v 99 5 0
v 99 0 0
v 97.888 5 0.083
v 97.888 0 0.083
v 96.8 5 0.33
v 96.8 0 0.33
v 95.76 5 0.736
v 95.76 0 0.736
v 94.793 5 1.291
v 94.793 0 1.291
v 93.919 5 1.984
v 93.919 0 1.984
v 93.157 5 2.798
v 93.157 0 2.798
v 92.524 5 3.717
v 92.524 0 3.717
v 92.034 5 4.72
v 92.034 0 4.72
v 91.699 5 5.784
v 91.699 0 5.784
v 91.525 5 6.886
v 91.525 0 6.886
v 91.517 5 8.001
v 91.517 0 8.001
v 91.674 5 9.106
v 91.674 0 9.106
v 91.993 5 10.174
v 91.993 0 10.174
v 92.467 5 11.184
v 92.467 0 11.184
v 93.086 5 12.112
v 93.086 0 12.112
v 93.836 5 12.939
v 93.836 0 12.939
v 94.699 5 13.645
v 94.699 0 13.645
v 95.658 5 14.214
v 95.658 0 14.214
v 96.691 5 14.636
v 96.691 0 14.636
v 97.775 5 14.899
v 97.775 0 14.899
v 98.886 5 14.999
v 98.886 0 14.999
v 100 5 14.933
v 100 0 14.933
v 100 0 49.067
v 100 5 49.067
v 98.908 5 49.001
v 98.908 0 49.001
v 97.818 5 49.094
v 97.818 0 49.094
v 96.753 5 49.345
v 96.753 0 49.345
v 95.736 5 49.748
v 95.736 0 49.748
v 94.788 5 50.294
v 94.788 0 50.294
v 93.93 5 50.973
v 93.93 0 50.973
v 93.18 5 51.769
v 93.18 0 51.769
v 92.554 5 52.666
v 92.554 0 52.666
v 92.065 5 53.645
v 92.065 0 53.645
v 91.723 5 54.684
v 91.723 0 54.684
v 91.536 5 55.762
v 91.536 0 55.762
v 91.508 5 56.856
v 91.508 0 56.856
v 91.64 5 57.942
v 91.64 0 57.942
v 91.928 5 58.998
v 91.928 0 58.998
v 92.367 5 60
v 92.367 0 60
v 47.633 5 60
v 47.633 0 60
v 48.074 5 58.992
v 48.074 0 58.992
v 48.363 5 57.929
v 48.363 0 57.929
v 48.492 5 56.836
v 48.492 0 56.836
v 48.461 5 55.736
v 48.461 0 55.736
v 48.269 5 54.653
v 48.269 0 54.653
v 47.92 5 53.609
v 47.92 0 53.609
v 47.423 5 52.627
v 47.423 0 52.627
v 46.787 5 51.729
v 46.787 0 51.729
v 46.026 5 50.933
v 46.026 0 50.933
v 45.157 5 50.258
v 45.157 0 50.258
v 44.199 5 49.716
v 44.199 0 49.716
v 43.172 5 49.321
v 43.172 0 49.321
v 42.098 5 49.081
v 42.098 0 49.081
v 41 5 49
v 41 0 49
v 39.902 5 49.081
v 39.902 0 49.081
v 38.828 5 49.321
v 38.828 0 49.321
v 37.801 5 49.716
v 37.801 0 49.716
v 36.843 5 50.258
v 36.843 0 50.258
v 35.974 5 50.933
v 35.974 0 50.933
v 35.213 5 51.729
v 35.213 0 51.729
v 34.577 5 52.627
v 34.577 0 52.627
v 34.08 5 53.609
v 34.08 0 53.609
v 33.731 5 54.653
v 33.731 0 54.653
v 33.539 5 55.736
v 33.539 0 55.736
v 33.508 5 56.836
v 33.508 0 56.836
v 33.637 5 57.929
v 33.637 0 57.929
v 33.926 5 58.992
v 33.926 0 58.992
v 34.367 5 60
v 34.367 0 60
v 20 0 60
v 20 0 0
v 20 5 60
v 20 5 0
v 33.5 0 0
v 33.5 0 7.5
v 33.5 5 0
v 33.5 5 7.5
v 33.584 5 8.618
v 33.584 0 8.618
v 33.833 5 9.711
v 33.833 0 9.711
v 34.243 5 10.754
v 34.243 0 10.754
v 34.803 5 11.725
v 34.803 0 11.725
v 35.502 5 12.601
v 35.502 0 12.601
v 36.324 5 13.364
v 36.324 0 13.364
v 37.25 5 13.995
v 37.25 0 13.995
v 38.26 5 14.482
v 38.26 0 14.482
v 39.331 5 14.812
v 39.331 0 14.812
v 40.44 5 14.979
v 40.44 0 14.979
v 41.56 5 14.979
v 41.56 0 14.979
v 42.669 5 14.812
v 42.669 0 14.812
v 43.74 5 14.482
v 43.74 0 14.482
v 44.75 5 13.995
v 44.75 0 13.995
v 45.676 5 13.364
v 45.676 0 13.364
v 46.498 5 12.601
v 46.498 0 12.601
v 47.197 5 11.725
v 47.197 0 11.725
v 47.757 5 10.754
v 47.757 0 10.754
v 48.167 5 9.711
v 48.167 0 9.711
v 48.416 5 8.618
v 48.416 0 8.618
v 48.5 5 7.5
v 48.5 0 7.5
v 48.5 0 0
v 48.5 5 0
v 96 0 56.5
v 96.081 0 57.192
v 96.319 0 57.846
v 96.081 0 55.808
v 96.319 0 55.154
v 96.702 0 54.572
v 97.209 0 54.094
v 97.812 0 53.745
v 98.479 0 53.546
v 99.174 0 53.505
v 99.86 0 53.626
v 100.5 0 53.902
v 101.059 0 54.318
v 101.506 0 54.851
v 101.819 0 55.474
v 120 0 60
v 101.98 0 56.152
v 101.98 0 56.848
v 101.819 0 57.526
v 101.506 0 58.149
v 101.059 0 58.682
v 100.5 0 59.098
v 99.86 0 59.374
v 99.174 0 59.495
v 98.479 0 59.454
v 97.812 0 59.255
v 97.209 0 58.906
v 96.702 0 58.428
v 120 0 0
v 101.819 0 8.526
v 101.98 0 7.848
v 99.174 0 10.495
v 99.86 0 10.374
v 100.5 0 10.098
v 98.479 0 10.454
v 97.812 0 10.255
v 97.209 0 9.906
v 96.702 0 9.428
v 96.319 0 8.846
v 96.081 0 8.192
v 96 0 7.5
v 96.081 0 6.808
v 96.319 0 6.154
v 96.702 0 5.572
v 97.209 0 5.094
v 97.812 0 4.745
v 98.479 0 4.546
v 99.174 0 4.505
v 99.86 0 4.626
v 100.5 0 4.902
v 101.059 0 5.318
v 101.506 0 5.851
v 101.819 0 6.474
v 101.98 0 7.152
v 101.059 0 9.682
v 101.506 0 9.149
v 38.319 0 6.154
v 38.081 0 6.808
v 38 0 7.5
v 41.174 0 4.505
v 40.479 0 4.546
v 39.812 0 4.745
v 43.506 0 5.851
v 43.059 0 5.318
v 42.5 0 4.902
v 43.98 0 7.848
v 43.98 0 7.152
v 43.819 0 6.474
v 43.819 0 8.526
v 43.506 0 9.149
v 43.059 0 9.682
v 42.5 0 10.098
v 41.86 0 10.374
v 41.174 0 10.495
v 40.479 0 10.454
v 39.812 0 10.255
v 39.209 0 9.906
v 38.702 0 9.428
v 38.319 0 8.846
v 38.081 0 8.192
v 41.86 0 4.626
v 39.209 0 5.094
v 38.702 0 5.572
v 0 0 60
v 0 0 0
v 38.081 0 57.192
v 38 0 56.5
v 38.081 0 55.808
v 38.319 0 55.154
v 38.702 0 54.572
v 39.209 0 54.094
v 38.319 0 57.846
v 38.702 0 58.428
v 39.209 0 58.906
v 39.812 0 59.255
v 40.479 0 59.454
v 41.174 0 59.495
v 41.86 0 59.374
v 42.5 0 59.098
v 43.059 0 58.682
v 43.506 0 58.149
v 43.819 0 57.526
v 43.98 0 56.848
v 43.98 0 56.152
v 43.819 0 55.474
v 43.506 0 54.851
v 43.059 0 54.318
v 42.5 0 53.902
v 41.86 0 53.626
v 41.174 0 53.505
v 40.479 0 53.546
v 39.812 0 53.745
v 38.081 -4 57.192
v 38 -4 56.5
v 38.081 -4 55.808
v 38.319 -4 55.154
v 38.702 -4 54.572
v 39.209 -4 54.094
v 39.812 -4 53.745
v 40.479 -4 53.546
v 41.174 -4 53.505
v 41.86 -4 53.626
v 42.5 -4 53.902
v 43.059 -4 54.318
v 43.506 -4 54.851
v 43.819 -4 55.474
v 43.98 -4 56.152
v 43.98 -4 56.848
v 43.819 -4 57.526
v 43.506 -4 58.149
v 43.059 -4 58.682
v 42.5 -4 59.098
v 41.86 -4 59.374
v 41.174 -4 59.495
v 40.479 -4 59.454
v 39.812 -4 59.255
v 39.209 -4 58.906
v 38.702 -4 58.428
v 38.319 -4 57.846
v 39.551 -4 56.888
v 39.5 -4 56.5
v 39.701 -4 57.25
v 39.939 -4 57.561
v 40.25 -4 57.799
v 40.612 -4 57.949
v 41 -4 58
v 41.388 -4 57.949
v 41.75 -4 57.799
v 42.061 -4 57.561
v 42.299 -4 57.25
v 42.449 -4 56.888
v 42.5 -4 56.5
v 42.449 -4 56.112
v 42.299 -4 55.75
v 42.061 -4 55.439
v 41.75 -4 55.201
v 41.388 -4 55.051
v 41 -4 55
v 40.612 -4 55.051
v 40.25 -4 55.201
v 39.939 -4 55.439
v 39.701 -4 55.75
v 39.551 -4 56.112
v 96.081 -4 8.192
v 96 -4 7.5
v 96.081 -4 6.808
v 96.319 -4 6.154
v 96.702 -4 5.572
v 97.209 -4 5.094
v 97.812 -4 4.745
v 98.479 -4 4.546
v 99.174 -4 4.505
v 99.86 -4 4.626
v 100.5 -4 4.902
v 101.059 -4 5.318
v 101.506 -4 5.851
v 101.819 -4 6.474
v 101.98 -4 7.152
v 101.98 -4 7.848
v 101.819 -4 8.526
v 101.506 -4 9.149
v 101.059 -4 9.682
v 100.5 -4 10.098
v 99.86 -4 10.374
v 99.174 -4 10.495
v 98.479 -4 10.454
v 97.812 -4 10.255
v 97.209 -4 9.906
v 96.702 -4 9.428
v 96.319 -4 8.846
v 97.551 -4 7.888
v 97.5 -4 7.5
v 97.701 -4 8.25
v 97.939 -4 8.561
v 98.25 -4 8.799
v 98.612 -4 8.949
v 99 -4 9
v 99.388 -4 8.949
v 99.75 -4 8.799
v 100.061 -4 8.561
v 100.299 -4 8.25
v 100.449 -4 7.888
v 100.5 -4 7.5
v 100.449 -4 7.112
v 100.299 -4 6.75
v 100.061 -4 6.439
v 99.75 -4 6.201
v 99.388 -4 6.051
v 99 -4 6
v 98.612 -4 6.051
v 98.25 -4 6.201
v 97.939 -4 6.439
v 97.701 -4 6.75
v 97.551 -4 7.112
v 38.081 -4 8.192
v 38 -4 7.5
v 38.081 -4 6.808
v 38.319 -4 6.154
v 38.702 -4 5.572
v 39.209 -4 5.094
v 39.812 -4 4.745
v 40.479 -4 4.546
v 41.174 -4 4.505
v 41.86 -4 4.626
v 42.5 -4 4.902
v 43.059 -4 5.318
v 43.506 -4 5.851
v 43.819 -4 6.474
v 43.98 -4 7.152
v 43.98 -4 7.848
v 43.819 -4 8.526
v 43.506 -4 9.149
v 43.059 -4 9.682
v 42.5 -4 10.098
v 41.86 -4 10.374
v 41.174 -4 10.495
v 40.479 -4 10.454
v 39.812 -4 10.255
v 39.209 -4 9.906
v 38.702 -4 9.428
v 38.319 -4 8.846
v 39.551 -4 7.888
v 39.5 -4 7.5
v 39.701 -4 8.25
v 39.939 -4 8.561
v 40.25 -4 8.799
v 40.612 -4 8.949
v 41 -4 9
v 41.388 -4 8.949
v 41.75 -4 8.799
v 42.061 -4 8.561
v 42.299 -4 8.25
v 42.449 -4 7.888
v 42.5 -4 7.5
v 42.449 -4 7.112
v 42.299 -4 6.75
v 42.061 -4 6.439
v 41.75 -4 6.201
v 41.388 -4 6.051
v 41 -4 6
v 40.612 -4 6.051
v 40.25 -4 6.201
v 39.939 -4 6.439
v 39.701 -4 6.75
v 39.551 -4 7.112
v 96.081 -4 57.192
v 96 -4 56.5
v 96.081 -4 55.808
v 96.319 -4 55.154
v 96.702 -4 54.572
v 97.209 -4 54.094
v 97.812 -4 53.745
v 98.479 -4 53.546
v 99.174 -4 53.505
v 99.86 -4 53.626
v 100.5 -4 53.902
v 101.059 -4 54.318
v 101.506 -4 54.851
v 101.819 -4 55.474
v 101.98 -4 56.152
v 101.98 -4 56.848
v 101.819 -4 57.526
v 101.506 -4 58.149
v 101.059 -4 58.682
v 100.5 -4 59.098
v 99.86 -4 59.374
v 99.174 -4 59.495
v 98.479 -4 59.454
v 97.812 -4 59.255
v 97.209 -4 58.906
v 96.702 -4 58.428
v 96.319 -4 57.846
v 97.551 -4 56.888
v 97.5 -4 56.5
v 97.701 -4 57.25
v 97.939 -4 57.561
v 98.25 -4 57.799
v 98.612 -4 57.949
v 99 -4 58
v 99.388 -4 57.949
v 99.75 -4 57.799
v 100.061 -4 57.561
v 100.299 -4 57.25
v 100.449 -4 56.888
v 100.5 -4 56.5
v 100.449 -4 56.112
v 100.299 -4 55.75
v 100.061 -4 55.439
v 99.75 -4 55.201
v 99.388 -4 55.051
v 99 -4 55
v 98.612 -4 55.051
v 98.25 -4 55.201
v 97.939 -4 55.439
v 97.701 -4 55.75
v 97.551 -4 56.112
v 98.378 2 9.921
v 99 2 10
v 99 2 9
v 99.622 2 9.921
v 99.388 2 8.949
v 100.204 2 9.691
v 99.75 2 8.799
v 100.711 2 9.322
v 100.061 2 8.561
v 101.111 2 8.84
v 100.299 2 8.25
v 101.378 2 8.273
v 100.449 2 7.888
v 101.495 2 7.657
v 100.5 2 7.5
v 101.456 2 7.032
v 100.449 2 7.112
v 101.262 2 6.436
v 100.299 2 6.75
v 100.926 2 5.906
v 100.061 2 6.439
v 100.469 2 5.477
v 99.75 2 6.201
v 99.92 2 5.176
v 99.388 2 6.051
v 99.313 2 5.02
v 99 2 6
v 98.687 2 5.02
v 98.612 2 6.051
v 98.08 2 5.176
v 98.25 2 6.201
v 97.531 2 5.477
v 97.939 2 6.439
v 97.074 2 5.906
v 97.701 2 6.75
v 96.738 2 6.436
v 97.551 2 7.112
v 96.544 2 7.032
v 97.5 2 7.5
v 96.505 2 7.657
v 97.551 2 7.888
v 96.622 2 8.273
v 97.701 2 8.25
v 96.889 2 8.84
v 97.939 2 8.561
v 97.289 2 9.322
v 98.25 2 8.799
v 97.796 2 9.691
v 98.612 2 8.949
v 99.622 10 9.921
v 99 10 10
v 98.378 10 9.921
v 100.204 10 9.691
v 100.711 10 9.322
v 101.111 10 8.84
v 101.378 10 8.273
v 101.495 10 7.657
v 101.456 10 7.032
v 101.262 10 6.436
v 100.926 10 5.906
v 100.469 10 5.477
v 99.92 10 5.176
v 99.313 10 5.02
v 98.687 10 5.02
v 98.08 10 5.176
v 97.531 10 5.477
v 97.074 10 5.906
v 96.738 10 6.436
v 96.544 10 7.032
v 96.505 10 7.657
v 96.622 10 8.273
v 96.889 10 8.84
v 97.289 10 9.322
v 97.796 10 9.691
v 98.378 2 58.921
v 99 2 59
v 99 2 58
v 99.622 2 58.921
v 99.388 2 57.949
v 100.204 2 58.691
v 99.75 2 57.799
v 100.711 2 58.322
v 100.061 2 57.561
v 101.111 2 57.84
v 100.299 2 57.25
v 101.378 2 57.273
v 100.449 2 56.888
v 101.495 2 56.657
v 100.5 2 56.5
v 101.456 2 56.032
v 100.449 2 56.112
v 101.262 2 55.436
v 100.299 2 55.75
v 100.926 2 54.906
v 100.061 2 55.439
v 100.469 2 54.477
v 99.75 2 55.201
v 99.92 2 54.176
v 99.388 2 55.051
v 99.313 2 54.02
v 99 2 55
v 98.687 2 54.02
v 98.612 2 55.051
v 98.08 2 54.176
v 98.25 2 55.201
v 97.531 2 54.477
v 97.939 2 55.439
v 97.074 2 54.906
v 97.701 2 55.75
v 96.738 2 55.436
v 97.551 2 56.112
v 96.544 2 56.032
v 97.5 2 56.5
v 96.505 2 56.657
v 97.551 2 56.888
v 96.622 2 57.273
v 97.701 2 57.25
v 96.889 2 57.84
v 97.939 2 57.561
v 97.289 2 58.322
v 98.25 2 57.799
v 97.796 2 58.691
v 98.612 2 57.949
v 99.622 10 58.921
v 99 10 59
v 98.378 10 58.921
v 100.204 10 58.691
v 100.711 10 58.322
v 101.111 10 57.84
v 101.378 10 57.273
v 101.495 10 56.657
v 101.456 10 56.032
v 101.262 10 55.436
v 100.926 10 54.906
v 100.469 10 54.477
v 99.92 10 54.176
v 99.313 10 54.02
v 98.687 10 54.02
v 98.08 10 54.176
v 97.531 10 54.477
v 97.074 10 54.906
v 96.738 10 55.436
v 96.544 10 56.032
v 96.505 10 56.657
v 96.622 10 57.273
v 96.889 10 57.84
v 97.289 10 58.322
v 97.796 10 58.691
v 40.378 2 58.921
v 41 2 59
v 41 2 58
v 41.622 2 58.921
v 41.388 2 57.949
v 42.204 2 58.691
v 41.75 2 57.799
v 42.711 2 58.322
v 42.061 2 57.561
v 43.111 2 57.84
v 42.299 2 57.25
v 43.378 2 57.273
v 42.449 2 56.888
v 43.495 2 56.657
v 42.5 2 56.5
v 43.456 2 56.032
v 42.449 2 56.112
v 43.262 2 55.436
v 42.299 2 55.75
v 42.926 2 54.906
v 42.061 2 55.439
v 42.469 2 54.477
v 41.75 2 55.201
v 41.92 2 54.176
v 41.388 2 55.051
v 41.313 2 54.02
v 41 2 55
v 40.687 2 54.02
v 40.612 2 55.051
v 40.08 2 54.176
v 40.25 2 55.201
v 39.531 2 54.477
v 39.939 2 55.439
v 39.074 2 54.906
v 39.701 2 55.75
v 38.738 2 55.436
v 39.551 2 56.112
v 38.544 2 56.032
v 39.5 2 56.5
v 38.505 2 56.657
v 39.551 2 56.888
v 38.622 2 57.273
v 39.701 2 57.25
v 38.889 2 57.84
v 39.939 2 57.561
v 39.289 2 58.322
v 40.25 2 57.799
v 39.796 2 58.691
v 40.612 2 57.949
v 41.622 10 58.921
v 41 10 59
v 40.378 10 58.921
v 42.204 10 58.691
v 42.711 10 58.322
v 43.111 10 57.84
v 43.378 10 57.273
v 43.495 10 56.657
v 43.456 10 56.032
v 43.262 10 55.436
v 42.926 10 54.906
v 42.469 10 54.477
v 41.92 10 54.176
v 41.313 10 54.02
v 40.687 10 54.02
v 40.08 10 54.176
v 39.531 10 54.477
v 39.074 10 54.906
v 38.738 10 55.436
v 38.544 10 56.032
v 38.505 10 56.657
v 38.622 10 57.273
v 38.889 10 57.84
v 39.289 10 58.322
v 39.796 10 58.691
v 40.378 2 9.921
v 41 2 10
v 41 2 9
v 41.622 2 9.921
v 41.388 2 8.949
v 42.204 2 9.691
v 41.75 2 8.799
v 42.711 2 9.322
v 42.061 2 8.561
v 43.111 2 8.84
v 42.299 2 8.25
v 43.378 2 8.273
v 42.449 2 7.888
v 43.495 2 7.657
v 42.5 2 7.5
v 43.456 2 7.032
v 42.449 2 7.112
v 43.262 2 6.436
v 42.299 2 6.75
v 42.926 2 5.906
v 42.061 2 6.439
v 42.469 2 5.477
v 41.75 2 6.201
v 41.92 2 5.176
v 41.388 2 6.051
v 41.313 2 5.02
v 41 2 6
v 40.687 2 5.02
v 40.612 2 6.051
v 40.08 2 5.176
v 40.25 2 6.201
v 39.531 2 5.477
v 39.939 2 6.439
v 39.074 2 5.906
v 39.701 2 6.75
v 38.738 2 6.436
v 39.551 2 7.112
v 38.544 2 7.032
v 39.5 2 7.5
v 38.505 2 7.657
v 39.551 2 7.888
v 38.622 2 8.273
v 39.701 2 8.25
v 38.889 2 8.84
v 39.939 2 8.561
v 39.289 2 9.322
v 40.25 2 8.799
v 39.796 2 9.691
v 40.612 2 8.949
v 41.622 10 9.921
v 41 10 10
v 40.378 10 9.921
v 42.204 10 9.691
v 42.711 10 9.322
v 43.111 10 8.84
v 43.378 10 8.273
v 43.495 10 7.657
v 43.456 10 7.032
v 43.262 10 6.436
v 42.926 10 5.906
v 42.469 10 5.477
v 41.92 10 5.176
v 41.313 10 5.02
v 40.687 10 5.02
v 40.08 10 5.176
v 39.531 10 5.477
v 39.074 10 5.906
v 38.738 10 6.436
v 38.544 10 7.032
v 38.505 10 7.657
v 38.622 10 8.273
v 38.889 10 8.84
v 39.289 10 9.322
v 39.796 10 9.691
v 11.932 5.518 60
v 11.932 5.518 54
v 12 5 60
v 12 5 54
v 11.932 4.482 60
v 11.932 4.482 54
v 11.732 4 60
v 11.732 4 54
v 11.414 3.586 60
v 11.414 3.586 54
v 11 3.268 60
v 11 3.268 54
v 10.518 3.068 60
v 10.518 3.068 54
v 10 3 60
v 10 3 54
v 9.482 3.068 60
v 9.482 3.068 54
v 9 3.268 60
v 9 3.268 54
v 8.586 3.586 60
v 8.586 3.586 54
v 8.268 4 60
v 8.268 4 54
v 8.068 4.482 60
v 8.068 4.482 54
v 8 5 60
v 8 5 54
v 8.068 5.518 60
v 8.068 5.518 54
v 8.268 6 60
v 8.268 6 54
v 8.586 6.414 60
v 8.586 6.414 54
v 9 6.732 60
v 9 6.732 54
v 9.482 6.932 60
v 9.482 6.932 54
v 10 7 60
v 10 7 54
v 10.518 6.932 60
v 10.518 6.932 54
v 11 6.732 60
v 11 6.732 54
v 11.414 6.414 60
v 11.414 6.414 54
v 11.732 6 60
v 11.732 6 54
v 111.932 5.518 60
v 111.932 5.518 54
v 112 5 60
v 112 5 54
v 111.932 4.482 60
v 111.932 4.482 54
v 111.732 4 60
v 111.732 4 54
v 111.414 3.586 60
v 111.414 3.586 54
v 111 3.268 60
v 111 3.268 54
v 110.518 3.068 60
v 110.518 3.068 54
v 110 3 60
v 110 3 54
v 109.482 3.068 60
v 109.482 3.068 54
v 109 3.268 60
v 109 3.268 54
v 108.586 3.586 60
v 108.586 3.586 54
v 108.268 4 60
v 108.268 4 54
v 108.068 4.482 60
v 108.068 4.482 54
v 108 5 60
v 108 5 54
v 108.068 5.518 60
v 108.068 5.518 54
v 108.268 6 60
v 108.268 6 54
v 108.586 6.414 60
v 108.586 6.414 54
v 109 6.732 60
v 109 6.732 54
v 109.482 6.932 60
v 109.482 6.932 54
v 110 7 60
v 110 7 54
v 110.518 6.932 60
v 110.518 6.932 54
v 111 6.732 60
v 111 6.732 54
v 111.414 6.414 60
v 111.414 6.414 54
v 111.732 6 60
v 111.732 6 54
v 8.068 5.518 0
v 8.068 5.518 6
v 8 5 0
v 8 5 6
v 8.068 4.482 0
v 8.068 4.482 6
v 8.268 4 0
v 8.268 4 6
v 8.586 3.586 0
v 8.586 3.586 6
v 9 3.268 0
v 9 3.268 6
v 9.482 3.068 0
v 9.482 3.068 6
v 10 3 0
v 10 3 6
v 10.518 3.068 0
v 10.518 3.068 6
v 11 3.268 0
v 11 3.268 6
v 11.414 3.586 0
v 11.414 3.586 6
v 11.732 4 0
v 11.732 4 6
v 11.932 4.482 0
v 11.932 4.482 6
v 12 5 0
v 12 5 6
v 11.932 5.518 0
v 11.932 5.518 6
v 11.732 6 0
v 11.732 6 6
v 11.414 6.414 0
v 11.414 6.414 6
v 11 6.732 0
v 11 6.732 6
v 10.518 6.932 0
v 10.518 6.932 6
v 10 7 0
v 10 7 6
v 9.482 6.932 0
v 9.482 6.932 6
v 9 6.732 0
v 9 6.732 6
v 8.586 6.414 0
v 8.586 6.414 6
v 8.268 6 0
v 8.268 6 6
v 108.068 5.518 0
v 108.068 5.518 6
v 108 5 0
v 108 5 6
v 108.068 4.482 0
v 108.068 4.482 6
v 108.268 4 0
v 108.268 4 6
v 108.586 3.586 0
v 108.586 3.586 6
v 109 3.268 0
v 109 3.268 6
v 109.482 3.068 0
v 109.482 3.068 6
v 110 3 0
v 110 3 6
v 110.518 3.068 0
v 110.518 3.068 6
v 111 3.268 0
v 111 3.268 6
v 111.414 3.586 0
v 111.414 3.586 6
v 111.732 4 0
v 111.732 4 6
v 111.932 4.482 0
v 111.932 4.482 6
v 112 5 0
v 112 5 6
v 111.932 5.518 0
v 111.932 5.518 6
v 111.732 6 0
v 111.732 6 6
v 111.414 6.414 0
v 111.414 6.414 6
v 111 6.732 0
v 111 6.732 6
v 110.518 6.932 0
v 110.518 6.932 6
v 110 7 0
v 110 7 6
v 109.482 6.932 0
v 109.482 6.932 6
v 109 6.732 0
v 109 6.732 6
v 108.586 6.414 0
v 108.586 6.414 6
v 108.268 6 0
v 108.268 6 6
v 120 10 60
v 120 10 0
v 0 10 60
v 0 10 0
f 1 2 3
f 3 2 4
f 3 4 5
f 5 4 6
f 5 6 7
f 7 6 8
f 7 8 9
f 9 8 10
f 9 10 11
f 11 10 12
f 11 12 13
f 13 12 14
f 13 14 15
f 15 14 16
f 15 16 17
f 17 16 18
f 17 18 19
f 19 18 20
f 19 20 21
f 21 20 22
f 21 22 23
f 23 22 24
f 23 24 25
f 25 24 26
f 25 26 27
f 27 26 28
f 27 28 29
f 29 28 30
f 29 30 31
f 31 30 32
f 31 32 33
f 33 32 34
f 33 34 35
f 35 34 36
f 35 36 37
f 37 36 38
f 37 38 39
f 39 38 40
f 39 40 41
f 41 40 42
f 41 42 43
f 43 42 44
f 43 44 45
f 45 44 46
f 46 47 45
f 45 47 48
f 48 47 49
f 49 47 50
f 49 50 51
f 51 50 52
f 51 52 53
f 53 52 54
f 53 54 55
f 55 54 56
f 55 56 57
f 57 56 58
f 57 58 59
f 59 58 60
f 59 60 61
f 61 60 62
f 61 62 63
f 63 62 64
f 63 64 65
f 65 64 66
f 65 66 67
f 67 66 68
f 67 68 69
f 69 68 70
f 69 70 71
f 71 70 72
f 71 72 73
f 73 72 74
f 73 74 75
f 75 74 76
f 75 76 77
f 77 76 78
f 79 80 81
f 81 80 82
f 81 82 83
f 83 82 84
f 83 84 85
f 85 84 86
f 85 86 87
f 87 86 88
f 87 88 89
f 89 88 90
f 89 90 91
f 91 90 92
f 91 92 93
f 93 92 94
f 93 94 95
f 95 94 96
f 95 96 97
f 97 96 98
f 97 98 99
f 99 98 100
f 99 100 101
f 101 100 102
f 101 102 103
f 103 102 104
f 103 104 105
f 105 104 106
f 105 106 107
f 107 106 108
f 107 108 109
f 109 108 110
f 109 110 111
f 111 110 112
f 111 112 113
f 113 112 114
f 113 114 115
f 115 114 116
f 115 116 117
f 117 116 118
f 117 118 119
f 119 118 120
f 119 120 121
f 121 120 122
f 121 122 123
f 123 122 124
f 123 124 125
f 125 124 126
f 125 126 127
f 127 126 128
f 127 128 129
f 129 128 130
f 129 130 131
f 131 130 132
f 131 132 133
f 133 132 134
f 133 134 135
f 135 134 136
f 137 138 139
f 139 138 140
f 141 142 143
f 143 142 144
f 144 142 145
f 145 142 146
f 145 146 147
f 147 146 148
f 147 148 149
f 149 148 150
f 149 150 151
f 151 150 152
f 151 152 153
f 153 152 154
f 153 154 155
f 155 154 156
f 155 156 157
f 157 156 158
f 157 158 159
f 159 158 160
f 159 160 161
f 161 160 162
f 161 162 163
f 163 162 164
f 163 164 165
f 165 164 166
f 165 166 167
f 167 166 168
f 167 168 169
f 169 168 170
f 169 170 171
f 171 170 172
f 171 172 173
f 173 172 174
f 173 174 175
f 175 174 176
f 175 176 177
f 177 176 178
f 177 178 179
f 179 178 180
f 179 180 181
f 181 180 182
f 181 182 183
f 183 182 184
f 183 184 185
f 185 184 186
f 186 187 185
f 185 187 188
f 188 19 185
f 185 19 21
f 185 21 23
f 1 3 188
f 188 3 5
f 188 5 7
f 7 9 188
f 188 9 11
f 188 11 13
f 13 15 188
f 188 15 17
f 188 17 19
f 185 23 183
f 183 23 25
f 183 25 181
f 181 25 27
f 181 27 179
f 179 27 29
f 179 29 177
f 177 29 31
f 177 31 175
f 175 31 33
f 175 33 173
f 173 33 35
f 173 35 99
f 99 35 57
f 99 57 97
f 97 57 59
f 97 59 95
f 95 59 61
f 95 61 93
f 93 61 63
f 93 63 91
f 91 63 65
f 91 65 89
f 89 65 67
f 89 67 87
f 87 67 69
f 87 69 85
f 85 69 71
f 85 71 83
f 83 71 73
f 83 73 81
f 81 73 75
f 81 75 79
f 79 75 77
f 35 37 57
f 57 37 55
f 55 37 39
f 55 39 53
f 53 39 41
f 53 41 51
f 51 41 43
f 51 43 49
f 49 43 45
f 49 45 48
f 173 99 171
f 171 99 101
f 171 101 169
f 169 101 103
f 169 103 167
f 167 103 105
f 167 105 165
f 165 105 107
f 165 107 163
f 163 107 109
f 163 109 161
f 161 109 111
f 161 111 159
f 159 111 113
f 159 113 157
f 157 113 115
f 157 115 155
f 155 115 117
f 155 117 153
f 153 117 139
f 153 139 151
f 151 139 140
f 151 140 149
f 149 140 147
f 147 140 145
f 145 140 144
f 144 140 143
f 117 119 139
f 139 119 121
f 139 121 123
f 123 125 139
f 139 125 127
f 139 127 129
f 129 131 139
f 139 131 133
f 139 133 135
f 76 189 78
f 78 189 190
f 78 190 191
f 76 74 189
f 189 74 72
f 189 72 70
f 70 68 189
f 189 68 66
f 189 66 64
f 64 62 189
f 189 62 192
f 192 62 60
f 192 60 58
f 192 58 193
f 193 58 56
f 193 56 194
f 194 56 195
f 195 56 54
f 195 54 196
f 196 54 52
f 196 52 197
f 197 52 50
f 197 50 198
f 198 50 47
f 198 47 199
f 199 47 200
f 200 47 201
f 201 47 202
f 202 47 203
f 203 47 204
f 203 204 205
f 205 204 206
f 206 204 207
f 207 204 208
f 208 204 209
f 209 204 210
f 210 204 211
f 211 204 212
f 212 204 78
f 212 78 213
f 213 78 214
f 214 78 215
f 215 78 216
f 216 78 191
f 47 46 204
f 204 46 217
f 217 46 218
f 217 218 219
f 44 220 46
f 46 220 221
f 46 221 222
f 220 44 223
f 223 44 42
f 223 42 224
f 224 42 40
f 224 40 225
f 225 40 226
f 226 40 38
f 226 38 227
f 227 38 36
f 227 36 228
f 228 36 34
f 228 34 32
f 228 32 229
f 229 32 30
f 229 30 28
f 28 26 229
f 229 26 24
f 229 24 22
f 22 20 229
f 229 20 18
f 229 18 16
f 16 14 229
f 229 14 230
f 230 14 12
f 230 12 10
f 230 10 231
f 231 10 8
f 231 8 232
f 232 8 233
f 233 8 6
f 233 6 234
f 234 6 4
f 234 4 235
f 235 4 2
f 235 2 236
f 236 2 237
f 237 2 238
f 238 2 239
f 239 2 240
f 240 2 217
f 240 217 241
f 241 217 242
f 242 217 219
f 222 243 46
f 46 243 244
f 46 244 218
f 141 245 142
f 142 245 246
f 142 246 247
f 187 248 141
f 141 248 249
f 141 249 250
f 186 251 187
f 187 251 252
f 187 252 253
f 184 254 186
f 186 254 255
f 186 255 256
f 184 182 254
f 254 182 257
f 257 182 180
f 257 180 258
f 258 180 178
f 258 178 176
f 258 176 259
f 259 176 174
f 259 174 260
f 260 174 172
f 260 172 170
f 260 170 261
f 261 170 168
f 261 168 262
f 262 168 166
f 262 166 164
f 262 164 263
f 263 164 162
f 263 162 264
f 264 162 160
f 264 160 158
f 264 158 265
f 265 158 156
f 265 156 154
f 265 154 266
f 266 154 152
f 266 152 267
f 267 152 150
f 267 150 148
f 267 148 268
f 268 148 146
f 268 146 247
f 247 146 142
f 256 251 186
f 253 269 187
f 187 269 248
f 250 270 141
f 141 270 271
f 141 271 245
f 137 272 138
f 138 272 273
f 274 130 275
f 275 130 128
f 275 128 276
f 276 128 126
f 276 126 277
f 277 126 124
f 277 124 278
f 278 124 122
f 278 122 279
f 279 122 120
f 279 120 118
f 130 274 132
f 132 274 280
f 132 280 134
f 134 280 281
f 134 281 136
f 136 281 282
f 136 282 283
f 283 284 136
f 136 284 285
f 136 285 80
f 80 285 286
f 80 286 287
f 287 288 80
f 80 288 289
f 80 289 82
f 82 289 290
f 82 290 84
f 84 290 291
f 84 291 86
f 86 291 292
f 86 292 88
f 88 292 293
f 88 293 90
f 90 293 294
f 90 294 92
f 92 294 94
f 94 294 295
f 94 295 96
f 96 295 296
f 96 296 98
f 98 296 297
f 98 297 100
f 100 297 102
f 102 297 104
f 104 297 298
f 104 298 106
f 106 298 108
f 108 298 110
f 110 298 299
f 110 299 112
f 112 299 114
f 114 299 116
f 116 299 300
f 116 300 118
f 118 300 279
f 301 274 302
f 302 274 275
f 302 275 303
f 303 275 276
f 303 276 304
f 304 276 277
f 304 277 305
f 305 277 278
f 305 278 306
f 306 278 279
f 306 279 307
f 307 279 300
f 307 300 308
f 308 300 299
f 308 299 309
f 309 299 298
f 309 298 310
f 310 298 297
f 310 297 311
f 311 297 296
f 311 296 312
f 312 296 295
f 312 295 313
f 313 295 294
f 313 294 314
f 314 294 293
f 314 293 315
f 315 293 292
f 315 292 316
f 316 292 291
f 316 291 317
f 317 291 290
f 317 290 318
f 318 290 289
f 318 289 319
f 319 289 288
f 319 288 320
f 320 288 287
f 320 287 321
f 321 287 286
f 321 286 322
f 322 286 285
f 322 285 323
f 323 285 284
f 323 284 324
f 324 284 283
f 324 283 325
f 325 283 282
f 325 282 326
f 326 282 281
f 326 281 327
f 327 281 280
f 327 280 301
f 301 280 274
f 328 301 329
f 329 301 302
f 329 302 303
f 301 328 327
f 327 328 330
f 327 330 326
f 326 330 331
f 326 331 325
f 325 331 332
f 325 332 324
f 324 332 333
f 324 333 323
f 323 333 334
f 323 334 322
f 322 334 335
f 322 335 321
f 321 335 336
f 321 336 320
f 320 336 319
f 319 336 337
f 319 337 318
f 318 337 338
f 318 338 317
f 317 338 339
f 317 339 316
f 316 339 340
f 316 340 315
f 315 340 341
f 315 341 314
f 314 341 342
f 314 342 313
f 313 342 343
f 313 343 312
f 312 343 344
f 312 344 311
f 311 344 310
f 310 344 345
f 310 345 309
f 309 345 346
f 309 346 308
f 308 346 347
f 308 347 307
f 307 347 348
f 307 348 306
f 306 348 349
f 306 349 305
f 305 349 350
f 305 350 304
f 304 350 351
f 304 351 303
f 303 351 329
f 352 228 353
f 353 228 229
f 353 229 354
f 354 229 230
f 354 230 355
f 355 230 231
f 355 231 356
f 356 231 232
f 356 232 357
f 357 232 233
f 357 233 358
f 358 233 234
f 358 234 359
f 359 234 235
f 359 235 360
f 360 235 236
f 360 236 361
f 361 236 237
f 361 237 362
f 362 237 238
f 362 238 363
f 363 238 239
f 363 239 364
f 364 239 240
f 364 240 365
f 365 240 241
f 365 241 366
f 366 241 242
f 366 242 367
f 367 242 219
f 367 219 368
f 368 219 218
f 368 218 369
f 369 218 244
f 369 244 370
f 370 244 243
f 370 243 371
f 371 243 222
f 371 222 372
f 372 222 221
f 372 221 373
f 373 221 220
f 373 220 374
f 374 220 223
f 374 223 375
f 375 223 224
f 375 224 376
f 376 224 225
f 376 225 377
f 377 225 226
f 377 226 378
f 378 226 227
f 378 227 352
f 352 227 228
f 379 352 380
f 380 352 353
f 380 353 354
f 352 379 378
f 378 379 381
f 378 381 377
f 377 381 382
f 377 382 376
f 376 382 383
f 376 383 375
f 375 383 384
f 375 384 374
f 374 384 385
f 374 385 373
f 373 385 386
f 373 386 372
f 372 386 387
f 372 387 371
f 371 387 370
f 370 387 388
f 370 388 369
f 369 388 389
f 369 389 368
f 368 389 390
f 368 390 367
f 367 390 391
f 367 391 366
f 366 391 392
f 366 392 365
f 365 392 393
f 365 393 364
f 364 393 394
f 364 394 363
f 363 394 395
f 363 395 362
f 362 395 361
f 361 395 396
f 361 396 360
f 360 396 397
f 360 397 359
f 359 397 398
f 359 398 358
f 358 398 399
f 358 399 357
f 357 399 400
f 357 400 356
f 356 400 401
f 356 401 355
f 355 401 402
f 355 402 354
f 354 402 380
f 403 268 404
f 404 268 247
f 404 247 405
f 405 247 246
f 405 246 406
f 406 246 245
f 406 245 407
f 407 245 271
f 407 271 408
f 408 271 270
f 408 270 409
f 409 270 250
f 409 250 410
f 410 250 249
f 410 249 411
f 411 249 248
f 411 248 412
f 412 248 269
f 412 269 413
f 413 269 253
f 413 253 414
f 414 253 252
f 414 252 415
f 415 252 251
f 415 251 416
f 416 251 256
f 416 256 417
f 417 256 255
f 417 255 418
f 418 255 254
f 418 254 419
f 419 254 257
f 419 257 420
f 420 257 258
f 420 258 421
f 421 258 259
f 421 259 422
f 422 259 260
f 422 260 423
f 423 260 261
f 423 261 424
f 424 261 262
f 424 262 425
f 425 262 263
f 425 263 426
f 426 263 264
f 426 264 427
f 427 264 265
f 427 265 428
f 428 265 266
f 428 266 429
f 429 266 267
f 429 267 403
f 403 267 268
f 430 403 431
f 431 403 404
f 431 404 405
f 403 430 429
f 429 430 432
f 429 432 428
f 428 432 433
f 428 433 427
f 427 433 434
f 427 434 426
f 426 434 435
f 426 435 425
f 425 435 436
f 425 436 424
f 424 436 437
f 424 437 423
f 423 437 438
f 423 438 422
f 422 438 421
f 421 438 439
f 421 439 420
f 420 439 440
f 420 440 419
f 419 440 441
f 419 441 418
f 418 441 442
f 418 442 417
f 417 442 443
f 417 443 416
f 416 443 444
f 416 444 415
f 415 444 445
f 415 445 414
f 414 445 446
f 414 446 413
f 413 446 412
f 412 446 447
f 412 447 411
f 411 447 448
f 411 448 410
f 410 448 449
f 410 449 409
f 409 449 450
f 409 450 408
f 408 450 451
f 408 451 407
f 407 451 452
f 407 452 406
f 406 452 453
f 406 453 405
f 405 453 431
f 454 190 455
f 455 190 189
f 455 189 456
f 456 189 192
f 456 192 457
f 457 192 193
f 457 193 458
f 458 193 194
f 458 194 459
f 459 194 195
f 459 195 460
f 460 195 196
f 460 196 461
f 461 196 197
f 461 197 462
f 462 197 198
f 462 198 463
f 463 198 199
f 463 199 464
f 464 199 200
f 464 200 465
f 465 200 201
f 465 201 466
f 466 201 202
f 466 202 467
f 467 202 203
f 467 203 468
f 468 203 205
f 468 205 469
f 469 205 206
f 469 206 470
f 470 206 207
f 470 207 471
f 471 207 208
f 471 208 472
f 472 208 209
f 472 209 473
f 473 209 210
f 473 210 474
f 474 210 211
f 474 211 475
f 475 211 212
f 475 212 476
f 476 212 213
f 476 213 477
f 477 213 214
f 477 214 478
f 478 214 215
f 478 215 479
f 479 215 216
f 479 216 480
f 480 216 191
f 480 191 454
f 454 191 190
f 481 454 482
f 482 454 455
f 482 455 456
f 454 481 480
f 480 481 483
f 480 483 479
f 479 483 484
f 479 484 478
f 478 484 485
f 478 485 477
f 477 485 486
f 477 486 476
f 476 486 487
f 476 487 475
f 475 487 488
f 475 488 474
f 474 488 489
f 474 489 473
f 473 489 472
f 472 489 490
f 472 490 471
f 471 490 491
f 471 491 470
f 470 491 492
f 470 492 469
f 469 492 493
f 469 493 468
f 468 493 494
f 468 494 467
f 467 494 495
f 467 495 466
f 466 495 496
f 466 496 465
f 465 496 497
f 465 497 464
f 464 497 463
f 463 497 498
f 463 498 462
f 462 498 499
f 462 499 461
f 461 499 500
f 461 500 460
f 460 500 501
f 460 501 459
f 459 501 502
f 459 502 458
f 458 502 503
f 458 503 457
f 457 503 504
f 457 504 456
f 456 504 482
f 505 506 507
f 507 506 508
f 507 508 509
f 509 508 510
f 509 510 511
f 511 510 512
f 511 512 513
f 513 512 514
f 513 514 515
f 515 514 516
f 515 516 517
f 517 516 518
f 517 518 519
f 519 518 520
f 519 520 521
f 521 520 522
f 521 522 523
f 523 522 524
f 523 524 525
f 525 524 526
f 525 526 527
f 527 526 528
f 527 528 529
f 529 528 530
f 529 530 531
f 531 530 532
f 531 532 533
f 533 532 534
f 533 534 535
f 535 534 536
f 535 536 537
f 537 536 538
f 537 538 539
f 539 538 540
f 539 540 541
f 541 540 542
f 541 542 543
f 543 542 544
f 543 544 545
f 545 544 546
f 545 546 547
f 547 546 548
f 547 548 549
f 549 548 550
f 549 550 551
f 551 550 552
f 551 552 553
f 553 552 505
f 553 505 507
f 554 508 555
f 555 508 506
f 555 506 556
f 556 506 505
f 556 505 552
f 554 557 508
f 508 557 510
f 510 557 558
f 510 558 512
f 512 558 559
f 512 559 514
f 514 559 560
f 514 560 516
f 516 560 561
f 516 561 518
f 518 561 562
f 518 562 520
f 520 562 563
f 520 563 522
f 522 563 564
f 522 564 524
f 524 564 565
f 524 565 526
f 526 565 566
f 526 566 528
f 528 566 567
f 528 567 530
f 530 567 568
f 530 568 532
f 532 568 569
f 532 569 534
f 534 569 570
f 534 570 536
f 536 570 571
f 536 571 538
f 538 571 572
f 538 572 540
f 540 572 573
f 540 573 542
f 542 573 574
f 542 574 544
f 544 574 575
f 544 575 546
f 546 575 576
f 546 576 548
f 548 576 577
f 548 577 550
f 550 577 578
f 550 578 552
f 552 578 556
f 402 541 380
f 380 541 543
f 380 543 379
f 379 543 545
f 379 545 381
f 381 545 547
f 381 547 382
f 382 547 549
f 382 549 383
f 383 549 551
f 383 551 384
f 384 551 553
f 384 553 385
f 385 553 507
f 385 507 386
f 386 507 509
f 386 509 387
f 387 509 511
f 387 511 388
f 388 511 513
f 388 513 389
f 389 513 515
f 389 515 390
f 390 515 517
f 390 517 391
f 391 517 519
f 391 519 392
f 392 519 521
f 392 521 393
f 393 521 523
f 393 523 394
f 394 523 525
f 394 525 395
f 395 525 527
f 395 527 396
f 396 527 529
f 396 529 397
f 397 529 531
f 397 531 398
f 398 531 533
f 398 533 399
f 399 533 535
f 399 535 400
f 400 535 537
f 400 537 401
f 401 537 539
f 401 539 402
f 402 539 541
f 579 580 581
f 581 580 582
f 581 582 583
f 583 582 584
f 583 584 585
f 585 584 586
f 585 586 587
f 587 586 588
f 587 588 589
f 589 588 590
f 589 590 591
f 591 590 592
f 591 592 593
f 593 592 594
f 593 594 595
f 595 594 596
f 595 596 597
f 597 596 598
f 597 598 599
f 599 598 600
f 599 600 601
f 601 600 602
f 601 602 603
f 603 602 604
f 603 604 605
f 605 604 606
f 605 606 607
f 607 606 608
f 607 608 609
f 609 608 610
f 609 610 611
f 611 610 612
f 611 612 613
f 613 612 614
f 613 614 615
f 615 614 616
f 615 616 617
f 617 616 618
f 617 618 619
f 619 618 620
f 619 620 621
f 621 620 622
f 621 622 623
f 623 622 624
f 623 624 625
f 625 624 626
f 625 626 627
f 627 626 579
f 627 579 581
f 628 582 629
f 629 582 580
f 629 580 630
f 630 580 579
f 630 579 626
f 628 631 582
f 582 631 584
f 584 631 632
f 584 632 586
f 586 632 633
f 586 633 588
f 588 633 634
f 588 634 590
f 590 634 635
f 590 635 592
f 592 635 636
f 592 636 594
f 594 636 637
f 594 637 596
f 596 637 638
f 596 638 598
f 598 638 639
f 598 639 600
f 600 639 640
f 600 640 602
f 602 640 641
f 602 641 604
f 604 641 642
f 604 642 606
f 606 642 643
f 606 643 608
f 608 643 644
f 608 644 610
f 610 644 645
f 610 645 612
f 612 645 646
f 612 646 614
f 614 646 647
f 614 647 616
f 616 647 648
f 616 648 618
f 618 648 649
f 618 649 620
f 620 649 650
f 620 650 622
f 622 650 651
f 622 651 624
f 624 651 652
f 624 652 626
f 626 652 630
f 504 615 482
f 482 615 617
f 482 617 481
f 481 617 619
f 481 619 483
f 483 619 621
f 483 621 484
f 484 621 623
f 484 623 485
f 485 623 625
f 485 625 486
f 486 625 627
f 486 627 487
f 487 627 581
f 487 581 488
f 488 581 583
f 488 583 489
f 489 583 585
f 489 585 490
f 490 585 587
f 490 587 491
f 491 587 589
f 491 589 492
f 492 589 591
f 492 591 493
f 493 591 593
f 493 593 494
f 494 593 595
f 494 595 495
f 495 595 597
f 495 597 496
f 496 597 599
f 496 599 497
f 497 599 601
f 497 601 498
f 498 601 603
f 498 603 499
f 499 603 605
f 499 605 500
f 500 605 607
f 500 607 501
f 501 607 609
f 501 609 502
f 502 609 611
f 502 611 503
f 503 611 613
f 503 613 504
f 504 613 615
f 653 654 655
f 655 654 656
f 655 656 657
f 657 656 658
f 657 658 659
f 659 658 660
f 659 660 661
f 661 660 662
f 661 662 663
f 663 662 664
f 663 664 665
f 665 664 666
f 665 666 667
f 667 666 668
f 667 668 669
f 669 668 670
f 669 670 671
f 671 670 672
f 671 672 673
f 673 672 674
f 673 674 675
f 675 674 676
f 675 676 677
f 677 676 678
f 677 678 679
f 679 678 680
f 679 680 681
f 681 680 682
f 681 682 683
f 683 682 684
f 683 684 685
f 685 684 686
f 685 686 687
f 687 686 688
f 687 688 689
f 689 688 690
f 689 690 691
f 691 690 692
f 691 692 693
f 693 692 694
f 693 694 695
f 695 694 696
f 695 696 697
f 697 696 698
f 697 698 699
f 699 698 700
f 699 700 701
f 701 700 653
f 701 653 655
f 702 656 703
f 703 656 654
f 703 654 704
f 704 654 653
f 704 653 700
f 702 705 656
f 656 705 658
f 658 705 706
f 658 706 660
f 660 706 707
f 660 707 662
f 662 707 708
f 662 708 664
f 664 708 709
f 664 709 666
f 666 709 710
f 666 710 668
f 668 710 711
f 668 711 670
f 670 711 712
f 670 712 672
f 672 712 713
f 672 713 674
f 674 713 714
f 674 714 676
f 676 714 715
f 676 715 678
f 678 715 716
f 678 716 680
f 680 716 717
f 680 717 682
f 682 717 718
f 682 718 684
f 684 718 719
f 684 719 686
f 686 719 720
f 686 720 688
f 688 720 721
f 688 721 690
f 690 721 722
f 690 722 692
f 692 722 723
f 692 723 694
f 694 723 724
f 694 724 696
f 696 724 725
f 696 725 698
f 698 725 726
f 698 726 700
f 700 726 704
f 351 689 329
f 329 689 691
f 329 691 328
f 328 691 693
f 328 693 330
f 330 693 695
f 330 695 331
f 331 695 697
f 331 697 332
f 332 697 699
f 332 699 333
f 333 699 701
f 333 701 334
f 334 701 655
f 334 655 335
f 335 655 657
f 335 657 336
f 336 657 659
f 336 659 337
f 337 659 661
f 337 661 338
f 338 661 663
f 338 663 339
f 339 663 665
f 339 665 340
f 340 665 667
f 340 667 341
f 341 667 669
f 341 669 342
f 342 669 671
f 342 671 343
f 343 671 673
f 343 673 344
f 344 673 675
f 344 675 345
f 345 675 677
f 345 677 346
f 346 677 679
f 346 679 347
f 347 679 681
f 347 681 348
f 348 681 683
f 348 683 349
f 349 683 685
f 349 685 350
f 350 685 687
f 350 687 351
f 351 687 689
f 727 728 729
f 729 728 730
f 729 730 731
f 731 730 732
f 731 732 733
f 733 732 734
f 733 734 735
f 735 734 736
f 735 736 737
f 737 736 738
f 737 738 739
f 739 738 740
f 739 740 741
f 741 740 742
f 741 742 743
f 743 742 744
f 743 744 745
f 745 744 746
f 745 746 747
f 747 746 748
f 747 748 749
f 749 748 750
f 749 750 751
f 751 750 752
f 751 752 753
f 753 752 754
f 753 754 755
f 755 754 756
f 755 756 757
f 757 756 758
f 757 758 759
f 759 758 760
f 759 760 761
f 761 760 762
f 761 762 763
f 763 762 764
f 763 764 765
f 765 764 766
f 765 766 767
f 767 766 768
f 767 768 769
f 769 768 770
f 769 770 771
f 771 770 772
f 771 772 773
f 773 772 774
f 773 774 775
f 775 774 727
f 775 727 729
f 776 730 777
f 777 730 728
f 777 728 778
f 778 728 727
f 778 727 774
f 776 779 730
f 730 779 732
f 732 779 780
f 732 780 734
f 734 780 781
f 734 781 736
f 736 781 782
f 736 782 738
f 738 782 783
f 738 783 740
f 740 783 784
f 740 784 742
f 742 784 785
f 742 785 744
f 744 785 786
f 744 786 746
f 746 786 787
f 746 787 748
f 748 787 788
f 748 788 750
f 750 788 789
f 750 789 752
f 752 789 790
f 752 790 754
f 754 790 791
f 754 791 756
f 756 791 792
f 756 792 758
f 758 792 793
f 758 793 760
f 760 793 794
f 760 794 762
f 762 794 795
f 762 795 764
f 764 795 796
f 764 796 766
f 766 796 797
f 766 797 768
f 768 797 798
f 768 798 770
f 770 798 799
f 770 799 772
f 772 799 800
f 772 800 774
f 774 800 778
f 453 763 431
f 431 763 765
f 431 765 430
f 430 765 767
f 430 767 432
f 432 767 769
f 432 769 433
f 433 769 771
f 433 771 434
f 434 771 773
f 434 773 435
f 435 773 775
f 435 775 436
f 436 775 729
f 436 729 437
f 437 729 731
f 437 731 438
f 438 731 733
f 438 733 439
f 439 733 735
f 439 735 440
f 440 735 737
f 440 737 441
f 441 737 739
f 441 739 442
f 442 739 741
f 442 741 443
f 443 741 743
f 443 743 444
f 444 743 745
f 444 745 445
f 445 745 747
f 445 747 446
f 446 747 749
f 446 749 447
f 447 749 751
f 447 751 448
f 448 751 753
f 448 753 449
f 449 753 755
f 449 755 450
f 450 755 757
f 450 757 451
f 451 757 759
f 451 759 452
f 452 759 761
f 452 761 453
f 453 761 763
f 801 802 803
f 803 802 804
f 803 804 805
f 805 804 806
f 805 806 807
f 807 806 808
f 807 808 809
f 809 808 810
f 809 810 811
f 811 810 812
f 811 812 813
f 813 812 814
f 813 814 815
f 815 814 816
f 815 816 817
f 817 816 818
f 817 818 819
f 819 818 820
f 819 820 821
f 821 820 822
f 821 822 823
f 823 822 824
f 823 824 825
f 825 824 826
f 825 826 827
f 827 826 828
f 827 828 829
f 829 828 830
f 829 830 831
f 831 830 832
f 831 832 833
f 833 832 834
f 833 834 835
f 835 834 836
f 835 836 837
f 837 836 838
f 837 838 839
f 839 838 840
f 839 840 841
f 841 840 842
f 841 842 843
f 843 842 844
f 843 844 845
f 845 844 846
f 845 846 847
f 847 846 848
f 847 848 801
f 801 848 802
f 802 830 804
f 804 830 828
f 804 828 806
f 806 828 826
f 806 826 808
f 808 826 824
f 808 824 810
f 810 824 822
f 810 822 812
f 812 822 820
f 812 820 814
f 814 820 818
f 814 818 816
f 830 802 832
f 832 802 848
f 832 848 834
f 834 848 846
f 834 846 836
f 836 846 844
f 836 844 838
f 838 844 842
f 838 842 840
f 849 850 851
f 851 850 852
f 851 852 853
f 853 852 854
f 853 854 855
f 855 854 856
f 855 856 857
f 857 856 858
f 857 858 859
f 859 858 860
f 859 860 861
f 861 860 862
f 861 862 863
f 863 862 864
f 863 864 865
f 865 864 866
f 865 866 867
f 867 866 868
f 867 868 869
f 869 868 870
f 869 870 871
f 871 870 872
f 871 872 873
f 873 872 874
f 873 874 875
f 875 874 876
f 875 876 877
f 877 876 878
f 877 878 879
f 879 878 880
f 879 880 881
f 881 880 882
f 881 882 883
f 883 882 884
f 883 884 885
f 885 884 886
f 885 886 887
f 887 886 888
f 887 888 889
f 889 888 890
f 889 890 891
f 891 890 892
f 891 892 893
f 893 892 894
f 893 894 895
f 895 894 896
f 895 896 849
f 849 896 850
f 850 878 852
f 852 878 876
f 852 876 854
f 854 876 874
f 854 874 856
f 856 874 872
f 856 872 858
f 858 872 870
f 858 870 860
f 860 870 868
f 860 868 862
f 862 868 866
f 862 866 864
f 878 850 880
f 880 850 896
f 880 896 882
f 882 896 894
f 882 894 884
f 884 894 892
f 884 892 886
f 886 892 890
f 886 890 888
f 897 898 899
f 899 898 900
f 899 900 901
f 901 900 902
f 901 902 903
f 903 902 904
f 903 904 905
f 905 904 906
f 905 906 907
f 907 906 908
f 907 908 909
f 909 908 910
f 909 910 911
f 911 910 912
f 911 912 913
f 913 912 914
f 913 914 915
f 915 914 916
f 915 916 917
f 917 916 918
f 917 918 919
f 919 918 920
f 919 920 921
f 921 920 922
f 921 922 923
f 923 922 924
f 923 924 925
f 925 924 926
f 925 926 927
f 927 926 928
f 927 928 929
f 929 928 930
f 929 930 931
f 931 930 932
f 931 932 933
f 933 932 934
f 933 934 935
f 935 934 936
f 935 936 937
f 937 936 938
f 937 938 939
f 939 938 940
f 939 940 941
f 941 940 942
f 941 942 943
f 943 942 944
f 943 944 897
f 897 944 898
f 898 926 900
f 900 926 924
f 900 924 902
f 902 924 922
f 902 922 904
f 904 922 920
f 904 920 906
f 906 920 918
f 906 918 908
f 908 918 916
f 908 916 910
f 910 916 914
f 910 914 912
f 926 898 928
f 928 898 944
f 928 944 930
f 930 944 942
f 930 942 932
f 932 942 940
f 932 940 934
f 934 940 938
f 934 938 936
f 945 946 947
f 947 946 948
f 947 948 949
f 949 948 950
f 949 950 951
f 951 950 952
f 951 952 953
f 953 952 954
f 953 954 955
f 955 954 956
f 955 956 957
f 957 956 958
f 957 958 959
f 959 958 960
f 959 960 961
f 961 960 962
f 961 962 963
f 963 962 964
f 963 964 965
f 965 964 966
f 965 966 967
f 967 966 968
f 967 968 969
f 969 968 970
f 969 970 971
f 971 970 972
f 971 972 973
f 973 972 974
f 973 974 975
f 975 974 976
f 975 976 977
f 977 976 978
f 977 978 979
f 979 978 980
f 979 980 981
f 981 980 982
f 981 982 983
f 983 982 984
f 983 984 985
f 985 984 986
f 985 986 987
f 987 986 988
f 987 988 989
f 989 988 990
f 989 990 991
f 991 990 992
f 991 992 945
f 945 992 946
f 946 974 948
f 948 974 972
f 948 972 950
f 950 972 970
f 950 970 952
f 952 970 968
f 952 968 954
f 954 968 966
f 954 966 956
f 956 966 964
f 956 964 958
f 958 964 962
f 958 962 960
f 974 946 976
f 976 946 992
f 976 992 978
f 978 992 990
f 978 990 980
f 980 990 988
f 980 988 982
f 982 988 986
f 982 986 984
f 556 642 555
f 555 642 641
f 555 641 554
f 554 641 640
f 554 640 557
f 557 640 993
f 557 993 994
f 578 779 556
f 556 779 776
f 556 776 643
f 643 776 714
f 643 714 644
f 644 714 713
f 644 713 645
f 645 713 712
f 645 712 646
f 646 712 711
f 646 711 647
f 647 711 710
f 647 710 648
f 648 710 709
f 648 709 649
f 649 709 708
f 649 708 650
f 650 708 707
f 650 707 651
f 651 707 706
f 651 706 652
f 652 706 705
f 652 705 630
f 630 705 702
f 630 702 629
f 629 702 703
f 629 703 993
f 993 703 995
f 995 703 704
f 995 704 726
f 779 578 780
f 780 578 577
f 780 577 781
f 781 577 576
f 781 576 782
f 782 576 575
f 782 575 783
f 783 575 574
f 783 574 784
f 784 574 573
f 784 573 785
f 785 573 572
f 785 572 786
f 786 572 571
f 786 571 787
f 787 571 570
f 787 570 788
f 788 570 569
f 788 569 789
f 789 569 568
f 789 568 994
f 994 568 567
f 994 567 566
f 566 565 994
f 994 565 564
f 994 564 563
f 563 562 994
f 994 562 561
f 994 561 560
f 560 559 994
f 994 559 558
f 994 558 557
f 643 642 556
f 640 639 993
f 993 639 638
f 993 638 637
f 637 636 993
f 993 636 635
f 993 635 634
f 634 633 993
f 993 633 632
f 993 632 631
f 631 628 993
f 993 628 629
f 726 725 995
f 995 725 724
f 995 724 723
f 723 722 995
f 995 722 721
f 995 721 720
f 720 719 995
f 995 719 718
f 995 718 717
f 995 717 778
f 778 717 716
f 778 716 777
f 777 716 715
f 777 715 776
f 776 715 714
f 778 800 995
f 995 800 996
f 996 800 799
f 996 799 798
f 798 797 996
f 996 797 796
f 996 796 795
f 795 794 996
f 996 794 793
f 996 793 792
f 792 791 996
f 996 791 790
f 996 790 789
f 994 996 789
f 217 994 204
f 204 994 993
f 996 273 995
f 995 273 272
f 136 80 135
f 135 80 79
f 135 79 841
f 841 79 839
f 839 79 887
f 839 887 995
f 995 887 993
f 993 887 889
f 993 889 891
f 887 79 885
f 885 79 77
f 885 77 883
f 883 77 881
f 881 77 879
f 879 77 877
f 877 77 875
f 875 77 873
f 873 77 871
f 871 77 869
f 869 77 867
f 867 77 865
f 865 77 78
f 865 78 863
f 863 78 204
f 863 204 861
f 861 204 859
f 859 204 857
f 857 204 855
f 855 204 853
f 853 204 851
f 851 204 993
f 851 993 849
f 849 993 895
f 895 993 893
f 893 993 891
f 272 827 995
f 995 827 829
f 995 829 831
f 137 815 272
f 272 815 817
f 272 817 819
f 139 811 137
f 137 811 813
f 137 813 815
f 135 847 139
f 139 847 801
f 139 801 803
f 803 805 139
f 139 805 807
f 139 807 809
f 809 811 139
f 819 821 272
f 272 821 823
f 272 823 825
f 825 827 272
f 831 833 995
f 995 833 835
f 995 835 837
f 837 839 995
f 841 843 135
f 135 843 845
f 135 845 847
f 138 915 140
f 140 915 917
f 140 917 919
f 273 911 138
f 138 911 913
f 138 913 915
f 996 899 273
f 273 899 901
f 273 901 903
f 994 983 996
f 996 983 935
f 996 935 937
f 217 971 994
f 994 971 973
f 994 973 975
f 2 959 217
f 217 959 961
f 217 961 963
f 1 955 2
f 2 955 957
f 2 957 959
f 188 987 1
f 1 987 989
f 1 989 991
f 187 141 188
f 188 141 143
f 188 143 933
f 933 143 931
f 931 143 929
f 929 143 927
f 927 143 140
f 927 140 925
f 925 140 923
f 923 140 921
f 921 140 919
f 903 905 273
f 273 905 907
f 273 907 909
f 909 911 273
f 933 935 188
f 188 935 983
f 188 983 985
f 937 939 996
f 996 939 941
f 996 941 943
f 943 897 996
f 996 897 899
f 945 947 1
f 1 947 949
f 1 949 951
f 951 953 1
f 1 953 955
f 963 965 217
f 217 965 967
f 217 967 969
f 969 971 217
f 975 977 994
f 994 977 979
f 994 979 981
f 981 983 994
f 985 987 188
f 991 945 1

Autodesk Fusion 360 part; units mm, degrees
sketch "Sketch1" plane through (0, 0, 0) normal (0, 0, 1) x (1, 0, 0)
  line L0 (0, 0) -> (120, 0)
  line L1 (120, 0) -> (120, 10)
  line L2 (120, 10) -> (0, 10)
  line L3 (0, 10) -> (0, 0)
  dimension "d1" = 120
  dimension "d2" = 10
extrude "Extrude1" add sketch "Sketch1" along normal blind 60
sketch "Sketch2" plane through (0, 0, 0) normal (0, 0, -1) x (1, 0, 0)
  line L0 (0, 0) -> (0, -10)
  line L1 (0, -10) -> (120, -10)
  line L2 (120, -10) -> (120, 0)
  line L3 (120, 0) -> (0, 0)
  line L4 (0, -5) -> (120, -5) construction
  point P0 (10, -5)
  point P1 (110, -5)
  dimension "d5" = 100
  dimension "d6" = 10
sketch "Sketch3" plane through (0, 0, 60) normal (0, 0, 1) x (-1, 0, 0)
  line L0 (0, -10) -> (0, 0)
  line L1 (0, 0) -> (-120, 0)
  line L2 (-120, 0) -> (-120, -10)
  line L3 (-120, -10) -> (0, -10)
  line L4 (0, -5) -> (-120, -5) construction
  point P0 (-10, -5)
  point P1 (-110, -5)
  dimension "d10" = 100
  dimension "d11" = 10
hole "Hole2" at (10, 5, 0) at (110, 5, 0) direction (0, 0, 1) diameter 4 depth 6 tip angle 180
hole "Hole3" at (10, 5, 60) at (110, 5, 60) direction (0, 0, -1) diameter 4 depth 6 tip angle 180
sketch "Sketch8" plane through (0, 10, 0) normal (0, 1, 0) x (-1, 0, 0)
  line L0 (-120, 0) -> (0, 0)
  line L1 (0, 0) -> (0, 60)
  line L2 (0, 60) -> (-120, 60)
  line L3 (-120, 60) -> (-120, 0)
  circle A0 centre (-99, 56.5) radius 1.35
  circle A1 centre (-41, 56.5) radius 1.35
  circle A2 centre (-99, 7.5) radius 1.35
  circle A3 centre (-41, 7.5) radius 1.35
  point P0 (-99, 56.5)
  point P1 (-41, 56.5)
  point P2 (-41, 7.5)
  point P3 (-99, 7.5)
hole "Hole5" at (99, 10, 56.5) at (41, 10, 56.5) at (99, 10, 7.5) at (41, 10, 7.5) direction (0, -1, 0) diameter 3 end through all counterbore diameter 5 counterbore depth 8
sketch "Sketch9" plane through (0, 0, 0) normal (0, -1, 0) x (1, 0, 0)
  circle A0 centre (99, 7.5) radius 1.5
  circle A1 centre (99, 56.5) radius 1.5
  circle A2 centre (41, 56.5) radius 1.5
  circle A3 centre (41, 7.5) radius 1.5
  line L0 (0, 0) -> (120, 0)
  line L1 (120, 0) -> (120, 60)
  line L2 (120, 60) -> (0, 60)
  line L3 (0, 60) -> (0, 0)
  circle A4 centre (41, 7.5) radius 3
  circle A5 centre (99, 7.5) radius 3
  circle A6 centre (99, 56.5) radius 3
  circle A7 centre (41, 56.5) radius 3
  dimension "d33" = 6
  dimension "d34" = 6
  dimension "d35" = 6
  dimension "d36" = 6
extrude "Extrude4" add sketch "Sketch9" along normal blind 4 contours A4 | A5 | A6 | A7
sketch "Sketch10" plane through (0, 0, 0) normal (0, -1, 0) x (1, 0, 0)
  circle A0 centre (41, 56.5) radius 3
  circle A1 centre (99, 7.5) radius 3
  circle A2 centre (41, 7.5) radius 3
  circle A3 centre (99, 56.5) radius 3
  line L0 (0, 0) -> (120, 0)
  line L1 (120, 0) -> (120, 60)
  line L2 (120, 60) -> (0, 60)
  line L3 (0, 60) -> (0, 0)
  line L4 (20, 0) -> (20, 60)
  arc A4 (100, 14.933) -> (100, 0.067) centre (99, 7.5) ccw
  arc A5 (34.3668, 60) -> (47.6332, 60) centre (41, 56.5) ccw
  line L5 (20, 60) -> (34.3668, 60)
  line L6 (47.6332, 60) -> (92.3668, 60)
  line L7 (33.5, 7.5) -> (33.5, 0)
  line L8 (48.5, 7.5) -> (48.5, 0)
  arc A6 (48.5, 7.5) -> (33.5, 7.5) centre (41, 7.5) ccw
  line L9 (100, 0) -> (48.5, 0)
  line L10 (33.5, 0) -> (20, 0)
  line L11 (100, 60) -> (100, 14.933)
  line L12 (100, 10.3284) -> (100, 4.6716)
  line L13 (100, 0.067) -> (100, 0)
  arc A7 (92.3668, 60) -> (100, 49.067) centre (99, 56.5) ccw
  dimension "d39" = 15
  dimension "d40" = 15
  dimension "d41" = 15
  dimension "d42" = 15
  dimension "d43" = 20
  dimension "d44" = 20
extrude "Extrude5" cut sketch "Sketch10" against normal blind 5 contours L0 L2 L4 A4 A5 L5 L6 L7 L8 A6 L9 L10 L11 A7
equation "d6 = ( 120 mm - d5 ) / 2"
equation "d11 = ( 120 mm - d10 ) / 2"
equation "d34 = d33"
equation "d35 = d33"
equation "d36 = d33"
equation "d40 = d39"
equation "d41 = d39"
equation "d42 = d39"
